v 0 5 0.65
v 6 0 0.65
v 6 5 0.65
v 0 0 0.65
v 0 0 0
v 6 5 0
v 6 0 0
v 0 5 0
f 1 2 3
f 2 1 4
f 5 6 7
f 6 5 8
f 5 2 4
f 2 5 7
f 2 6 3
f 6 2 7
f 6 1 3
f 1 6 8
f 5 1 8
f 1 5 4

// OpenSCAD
/* Warning, this is a very basic generator with a lot of approximation 
input data : [UDFN, Q5B, 6x5x0.65mm, 8, , A, C04-21356A]
generated by com.zoubworld.electronics.cad.model3d.Basic
Date : Sun Feb 15 10:50:49 CET 2026
*/

//body
color("black")
translate([0,0,0])
cube([6.0,5.0,0.65], center=false);
